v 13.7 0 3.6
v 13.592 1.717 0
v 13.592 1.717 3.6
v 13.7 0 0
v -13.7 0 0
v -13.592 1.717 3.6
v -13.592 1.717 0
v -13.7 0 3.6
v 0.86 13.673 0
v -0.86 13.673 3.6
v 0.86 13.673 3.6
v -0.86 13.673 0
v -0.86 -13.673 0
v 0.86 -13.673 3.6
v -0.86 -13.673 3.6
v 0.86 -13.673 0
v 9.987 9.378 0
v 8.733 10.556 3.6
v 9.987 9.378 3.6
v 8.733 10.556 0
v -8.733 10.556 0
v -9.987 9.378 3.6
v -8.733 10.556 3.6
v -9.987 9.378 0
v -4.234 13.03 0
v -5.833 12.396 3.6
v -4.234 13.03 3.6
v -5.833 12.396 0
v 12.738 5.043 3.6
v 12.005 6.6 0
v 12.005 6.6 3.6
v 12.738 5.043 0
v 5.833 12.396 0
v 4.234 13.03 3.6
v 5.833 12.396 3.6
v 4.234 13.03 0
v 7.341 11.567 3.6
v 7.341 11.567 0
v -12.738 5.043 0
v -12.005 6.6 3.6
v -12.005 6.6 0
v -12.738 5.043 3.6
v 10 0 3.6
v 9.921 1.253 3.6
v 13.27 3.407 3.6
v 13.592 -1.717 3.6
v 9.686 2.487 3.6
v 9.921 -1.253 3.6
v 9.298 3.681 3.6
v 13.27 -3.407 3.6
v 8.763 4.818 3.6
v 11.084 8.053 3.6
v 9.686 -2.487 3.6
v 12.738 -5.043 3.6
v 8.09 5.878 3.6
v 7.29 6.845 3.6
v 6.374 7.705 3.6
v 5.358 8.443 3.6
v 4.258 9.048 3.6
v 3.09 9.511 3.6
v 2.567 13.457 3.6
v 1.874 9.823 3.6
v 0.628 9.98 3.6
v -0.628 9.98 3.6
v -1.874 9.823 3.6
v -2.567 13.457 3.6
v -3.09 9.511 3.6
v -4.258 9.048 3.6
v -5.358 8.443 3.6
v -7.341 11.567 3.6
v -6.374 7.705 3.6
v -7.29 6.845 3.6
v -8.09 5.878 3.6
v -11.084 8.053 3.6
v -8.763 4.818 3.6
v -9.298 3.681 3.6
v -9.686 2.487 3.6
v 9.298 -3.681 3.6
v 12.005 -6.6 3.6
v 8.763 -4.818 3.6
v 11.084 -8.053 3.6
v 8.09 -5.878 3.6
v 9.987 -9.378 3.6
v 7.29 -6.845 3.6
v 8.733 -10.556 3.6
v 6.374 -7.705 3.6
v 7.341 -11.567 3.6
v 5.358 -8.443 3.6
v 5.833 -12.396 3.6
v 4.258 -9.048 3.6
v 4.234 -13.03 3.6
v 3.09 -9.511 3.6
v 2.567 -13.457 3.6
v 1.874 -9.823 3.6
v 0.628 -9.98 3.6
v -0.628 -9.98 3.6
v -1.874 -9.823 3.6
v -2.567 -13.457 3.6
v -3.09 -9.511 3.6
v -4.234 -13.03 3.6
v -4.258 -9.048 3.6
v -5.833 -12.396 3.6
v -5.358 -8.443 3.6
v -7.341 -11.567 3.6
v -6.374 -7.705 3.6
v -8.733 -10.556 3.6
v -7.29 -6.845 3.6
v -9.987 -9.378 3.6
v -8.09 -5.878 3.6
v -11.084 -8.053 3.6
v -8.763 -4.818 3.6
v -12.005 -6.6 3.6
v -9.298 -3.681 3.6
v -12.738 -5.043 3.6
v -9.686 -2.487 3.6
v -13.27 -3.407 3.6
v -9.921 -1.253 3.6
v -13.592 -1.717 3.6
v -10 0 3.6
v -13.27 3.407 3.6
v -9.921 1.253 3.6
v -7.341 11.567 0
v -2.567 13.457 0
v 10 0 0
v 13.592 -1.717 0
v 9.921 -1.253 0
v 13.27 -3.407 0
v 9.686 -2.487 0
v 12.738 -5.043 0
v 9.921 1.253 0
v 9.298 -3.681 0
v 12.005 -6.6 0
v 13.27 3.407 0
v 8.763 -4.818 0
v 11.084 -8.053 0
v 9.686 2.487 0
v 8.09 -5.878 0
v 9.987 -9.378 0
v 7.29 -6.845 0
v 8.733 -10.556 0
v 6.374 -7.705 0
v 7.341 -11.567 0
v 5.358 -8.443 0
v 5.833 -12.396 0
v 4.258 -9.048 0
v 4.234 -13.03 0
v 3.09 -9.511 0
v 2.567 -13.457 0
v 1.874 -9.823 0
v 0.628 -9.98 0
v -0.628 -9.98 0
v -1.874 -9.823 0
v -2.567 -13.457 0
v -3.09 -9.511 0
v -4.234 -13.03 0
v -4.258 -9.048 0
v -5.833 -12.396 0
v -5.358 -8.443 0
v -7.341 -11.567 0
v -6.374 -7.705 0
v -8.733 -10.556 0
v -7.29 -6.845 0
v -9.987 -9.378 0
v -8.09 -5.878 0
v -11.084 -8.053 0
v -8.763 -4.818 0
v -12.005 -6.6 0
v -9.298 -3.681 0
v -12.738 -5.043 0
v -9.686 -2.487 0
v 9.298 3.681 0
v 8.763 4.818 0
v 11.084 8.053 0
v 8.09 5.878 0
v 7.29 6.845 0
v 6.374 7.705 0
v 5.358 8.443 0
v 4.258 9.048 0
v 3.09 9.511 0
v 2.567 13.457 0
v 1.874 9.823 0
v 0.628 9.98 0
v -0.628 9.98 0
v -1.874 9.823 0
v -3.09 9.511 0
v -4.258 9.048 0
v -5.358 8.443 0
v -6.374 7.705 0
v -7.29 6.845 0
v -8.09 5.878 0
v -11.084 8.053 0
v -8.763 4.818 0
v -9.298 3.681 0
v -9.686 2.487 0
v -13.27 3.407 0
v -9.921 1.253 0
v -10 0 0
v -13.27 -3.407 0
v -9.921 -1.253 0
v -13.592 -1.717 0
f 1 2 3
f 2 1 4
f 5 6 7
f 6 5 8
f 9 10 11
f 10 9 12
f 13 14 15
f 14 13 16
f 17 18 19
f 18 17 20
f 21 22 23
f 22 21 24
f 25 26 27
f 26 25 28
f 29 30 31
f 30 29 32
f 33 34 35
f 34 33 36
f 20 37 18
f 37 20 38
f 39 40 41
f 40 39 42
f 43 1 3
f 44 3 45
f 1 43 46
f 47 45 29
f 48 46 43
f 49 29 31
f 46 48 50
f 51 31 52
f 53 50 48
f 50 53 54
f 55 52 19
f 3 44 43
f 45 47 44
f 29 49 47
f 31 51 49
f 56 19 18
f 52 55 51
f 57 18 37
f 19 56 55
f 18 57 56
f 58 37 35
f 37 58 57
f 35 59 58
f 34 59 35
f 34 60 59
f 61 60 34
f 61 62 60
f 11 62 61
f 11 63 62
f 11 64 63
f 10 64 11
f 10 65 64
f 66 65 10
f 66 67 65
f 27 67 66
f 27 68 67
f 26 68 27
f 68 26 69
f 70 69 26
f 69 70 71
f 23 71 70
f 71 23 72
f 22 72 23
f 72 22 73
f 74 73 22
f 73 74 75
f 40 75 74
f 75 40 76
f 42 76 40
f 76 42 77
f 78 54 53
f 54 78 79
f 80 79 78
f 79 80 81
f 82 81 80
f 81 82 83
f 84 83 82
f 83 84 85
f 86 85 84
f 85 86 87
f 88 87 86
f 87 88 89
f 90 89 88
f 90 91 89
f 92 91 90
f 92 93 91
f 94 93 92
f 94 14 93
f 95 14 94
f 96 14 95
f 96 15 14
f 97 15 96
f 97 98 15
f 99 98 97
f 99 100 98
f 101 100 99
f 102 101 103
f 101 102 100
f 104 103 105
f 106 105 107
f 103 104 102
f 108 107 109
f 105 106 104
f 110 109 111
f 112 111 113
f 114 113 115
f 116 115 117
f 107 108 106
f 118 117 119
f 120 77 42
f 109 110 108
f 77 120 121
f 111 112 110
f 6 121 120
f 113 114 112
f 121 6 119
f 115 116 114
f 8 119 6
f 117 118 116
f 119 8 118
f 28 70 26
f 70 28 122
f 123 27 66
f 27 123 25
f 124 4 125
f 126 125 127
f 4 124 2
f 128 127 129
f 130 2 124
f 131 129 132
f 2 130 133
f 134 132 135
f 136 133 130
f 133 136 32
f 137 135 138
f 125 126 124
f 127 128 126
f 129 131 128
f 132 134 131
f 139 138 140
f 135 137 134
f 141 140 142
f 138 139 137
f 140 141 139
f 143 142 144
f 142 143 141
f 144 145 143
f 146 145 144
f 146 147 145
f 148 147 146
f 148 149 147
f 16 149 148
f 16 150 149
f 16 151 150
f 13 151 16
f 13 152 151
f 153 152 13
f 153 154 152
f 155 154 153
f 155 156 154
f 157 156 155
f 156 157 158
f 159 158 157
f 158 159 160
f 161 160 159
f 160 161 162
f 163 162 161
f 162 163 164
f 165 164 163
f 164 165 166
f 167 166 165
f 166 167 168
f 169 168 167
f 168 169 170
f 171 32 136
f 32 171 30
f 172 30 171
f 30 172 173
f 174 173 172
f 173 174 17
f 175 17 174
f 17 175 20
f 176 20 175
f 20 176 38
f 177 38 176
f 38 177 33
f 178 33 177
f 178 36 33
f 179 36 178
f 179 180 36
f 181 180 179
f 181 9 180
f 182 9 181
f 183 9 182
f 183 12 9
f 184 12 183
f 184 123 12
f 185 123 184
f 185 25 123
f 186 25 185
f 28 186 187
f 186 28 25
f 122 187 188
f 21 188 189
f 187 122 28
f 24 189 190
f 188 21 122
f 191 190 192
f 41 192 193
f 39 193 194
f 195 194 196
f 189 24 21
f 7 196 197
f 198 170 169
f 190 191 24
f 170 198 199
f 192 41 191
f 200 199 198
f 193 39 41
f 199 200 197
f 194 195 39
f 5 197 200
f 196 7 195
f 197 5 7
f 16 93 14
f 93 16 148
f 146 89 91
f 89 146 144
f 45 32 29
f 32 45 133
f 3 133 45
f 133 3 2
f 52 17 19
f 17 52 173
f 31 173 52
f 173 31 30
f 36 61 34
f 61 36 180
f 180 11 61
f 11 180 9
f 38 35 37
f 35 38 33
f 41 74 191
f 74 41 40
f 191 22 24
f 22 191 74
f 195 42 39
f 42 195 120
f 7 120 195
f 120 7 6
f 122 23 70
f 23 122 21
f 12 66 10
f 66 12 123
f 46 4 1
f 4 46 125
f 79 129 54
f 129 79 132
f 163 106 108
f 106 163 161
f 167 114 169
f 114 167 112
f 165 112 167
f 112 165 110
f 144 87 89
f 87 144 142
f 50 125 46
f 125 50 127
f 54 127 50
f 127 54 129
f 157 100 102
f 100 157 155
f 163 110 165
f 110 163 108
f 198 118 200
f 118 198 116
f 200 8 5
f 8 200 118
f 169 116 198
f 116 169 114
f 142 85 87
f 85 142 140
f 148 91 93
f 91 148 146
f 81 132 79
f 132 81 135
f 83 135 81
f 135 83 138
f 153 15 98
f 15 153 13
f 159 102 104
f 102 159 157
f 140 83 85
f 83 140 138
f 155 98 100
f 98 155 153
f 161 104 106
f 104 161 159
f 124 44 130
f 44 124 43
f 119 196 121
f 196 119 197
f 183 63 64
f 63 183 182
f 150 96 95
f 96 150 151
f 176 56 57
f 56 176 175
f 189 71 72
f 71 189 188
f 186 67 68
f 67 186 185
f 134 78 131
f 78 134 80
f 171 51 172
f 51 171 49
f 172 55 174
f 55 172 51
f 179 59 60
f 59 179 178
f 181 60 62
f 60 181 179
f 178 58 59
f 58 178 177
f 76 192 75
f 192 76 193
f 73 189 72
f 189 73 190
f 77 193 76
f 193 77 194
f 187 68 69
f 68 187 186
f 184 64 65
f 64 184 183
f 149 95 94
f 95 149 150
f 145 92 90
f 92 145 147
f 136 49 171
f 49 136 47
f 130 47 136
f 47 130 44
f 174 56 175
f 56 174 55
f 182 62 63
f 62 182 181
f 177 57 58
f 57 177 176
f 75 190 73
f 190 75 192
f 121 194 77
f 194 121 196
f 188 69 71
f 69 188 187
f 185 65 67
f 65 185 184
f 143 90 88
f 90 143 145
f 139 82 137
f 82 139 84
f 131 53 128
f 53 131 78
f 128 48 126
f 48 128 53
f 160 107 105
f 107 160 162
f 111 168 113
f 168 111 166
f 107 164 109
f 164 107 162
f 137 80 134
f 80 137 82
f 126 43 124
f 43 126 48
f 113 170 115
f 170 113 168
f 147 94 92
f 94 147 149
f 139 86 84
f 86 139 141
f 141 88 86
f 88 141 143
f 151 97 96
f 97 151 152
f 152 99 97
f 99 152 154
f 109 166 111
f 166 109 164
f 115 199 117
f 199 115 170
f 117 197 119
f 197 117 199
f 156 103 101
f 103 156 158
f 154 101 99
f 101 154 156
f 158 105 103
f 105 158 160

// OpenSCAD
$fn = 50;


difference() {
	union() {
		translate(v = [0, 0, 0]) {
			rotate(a = [0, 0, 0]) {
				cylinder(h = 3.6000000000, r = 13.7000000000);
			}
		}
	}
	union() {
		translate(v = [0, 0, 0]) {
			rotate(a = [0, 0, 0]) {
				cylinder(h = 3.6000000000, r = 10.0000000000);
			}
		}
	}
}
